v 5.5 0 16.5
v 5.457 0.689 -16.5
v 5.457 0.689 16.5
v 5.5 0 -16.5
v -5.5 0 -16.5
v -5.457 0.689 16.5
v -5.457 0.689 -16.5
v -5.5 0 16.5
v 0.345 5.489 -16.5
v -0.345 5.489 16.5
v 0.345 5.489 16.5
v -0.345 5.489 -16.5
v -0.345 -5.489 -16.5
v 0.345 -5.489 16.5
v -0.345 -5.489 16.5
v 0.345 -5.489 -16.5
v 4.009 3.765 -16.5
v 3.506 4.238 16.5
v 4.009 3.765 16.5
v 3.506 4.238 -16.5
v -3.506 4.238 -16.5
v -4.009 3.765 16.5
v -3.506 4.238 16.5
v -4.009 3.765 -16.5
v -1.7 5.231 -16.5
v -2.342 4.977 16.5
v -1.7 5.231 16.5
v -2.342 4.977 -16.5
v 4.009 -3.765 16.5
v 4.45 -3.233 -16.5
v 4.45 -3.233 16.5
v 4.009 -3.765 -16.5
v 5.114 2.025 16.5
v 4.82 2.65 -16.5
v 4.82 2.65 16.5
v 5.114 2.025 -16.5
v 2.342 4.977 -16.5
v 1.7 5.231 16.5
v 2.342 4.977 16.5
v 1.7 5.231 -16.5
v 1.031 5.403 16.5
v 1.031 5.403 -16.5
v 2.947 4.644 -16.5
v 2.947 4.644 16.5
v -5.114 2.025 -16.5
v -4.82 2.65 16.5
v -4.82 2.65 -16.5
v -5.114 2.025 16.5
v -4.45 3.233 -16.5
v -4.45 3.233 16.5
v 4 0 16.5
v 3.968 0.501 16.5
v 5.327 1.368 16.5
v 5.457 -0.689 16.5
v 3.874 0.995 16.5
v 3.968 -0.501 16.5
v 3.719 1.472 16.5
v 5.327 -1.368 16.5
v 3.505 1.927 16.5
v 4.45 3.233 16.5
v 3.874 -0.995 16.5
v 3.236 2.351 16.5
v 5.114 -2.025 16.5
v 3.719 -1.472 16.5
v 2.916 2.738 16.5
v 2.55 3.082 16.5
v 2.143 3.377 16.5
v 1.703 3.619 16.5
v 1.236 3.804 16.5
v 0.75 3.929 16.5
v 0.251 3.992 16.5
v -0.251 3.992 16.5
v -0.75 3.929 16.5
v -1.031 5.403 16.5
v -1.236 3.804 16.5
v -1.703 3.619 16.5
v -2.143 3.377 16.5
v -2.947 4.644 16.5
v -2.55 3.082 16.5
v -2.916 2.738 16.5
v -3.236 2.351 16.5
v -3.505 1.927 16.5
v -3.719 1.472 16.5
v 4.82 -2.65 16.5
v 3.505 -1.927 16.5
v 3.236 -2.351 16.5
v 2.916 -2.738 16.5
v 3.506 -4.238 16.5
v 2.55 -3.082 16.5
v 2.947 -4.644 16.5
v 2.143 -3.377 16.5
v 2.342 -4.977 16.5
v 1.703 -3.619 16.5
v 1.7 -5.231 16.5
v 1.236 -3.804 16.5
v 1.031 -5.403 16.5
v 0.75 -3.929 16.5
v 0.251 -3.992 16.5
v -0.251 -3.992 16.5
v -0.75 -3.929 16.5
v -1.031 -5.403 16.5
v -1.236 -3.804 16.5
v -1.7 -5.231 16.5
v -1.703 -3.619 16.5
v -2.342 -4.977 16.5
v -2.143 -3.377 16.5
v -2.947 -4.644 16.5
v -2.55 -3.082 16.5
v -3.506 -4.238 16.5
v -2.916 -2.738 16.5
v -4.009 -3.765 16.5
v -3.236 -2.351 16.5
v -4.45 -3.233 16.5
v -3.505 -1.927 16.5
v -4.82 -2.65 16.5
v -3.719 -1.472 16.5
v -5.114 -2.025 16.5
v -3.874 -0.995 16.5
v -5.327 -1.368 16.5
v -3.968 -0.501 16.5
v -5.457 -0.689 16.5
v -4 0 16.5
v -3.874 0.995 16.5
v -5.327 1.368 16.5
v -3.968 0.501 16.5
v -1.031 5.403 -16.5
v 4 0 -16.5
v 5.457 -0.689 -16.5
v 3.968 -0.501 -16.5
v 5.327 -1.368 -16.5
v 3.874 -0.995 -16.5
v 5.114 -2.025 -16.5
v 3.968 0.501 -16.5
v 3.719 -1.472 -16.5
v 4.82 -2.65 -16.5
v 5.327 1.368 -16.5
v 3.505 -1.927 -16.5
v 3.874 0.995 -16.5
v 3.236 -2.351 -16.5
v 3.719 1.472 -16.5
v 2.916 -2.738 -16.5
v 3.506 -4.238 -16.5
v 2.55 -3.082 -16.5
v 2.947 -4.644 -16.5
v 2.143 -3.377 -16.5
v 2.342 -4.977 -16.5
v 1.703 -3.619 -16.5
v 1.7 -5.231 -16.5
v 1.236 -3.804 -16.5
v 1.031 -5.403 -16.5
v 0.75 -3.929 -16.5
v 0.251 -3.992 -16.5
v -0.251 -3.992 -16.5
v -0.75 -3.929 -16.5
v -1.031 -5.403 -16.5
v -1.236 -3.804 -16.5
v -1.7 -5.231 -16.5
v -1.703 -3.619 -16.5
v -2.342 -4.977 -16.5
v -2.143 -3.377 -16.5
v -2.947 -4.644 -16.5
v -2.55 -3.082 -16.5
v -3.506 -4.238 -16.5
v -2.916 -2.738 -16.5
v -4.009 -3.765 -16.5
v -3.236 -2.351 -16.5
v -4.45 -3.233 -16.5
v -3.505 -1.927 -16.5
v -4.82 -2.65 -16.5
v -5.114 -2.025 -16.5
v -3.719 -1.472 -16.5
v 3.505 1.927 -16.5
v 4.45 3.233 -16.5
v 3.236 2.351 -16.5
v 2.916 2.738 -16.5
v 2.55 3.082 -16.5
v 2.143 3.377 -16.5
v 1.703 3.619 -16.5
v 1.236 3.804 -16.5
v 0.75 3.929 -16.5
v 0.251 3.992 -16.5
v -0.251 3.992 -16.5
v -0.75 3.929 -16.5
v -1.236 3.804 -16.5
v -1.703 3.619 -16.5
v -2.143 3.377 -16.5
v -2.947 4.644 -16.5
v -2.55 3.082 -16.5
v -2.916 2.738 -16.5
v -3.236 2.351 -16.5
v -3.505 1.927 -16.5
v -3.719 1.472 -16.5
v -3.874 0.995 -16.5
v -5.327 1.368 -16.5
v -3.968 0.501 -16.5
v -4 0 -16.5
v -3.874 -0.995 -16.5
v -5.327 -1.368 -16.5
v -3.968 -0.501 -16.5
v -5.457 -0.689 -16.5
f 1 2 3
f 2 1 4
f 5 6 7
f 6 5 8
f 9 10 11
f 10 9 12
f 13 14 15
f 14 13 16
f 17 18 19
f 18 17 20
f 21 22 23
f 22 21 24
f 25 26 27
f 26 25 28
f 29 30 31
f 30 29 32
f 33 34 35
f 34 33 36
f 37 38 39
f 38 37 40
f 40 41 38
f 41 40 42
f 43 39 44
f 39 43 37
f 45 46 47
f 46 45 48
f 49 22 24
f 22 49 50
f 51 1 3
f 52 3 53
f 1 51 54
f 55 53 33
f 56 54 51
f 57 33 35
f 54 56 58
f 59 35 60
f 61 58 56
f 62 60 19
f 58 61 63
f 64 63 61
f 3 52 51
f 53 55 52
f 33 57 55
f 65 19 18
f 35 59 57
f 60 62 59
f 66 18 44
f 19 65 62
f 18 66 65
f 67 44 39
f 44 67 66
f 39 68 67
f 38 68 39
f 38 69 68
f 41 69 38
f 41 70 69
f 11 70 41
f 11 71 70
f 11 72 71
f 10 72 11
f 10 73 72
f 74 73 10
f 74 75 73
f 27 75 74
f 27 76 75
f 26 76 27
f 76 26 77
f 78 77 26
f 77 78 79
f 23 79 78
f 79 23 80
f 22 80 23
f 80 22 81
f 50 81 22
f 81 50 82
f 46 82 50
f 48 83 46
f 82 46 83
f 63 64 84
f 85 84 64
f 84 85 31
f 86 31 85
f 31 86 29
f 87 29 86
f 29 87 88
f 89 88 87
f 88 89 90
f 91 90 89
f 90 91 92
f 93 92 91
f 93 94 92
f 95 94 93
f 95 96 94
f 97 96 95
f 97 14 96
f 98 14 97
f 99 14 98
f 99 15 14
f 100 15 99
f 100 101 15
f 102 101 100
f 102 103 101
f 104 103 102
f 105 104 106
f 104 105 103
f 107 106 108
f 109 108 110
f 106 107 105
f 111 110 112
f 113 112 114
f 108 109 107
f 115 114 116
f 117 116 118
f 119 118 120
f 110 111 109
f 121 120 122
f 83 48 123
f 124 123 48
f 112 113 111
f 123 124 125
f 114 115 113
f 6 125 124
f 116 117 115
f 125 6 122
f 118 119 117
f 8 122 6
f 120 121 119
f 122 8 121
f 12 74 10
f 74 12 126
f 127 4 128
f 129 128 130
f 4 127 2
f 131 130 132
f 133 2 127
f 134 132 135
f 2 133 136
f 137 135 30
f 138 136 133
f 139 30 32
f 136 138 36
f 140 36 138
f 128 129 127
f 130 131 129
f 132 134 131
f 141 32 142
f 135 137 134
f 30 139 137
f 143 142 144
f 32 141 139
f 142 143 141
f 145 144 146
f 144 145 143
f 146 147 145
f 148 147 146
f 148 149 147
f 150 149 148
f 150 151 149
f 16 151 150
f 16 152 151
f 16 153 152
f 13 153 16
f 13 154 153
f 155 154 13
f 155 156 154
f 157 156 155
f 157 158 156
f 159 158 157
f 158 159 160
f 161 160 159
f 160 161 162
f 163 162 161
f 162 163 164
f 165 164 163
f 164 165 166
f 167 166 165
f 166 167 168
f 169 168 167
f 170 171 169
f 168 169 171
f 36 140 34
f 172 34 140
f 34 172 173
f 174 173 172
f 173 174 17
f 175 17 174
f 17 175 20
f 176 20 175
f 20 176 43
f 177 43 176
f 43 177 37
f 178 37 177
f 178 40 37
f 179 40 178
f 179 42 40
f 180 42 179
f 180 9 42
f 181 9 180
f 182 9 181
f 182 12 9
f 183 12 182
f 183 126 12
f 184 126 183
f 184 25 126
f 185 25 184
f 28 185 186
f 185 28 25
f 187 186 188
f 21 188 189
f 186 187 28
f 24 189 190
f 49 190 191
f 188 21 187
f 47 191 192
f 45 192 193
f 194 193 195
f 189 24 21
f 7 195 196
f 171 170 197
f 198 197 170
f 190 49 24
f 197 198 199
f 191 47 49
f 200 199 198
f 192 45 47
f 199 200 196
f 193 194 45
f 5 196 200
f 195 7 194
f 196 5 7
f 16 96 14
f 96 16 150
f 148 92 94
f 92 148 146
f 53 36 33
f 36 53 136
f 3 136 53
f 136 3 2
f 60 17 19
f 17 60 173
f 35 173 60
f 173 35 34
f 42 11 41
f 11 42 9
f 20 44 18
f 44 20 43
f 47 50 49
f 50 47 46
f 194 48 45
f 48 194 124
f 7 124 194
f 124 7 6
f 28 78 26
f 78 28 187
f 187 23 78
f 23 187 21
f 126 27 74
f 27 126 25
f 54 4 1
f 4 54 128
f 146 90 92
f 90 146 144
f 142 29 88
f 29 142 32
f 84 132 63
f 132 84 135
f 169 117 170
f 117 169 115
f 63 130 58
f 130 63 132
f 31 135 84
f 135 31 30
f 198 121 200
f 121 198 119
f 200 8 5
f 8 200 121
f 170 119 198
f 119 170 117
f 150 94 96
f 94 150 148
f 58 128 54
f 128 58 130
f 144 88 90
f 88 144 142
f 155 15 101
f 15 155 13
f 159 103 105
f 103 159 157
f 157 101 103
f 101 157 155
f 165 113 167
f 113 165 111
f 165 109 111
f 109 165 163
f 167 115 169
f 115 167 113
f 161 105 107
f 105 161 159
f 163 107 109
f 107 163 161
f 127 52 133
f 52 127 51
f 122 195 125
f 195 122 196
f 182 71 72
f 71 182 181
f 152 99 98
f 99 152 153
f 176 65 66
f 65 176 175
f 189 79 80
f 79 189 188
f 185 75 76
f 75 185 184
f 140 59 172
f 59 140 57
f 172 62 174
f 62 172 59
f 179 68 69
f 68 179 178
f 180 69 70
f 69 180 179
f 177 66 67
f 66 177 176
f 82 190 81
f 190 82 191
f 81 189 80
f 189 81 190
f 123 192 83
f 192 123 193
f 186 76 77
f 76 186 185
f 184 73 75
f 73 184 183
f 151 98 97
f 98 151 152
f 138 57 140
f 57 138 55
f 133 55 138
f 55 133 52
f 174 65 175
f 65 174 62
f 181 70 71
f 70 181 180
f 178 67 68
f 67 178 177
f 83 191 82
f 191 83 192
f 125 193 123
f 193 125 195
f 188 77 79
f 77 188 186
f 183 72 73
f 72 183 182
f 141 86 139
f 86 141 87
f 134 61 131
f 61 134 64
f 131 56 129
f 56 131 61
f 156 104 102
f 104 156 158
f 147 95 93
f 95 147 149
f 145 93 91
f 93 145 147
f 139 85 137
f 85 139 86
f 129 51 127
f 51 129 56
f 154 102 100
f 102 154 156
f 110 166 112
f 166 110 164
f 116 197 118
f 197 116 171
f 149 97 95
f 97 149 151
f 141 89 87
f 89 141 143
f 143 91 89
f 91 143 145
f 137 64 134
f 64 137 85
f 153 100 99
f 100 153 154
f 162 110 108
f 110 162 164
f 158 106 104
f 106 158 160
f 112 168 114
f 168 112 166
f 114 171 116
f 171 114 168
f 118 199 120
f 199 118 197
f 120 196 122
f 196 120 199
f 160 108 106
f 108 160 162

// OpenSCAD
$fn = 50;


difference() {
	union() {
		translate(v = [0, 0, -16.5000000000]) {
			cylinder(h = 33, r = 5.5000000000);
		}
	}
	union() {
		translate(v = [0, 0, -100.0000000000]) {
			cylinder(h = 200, r = 4);
		}
	}
}
